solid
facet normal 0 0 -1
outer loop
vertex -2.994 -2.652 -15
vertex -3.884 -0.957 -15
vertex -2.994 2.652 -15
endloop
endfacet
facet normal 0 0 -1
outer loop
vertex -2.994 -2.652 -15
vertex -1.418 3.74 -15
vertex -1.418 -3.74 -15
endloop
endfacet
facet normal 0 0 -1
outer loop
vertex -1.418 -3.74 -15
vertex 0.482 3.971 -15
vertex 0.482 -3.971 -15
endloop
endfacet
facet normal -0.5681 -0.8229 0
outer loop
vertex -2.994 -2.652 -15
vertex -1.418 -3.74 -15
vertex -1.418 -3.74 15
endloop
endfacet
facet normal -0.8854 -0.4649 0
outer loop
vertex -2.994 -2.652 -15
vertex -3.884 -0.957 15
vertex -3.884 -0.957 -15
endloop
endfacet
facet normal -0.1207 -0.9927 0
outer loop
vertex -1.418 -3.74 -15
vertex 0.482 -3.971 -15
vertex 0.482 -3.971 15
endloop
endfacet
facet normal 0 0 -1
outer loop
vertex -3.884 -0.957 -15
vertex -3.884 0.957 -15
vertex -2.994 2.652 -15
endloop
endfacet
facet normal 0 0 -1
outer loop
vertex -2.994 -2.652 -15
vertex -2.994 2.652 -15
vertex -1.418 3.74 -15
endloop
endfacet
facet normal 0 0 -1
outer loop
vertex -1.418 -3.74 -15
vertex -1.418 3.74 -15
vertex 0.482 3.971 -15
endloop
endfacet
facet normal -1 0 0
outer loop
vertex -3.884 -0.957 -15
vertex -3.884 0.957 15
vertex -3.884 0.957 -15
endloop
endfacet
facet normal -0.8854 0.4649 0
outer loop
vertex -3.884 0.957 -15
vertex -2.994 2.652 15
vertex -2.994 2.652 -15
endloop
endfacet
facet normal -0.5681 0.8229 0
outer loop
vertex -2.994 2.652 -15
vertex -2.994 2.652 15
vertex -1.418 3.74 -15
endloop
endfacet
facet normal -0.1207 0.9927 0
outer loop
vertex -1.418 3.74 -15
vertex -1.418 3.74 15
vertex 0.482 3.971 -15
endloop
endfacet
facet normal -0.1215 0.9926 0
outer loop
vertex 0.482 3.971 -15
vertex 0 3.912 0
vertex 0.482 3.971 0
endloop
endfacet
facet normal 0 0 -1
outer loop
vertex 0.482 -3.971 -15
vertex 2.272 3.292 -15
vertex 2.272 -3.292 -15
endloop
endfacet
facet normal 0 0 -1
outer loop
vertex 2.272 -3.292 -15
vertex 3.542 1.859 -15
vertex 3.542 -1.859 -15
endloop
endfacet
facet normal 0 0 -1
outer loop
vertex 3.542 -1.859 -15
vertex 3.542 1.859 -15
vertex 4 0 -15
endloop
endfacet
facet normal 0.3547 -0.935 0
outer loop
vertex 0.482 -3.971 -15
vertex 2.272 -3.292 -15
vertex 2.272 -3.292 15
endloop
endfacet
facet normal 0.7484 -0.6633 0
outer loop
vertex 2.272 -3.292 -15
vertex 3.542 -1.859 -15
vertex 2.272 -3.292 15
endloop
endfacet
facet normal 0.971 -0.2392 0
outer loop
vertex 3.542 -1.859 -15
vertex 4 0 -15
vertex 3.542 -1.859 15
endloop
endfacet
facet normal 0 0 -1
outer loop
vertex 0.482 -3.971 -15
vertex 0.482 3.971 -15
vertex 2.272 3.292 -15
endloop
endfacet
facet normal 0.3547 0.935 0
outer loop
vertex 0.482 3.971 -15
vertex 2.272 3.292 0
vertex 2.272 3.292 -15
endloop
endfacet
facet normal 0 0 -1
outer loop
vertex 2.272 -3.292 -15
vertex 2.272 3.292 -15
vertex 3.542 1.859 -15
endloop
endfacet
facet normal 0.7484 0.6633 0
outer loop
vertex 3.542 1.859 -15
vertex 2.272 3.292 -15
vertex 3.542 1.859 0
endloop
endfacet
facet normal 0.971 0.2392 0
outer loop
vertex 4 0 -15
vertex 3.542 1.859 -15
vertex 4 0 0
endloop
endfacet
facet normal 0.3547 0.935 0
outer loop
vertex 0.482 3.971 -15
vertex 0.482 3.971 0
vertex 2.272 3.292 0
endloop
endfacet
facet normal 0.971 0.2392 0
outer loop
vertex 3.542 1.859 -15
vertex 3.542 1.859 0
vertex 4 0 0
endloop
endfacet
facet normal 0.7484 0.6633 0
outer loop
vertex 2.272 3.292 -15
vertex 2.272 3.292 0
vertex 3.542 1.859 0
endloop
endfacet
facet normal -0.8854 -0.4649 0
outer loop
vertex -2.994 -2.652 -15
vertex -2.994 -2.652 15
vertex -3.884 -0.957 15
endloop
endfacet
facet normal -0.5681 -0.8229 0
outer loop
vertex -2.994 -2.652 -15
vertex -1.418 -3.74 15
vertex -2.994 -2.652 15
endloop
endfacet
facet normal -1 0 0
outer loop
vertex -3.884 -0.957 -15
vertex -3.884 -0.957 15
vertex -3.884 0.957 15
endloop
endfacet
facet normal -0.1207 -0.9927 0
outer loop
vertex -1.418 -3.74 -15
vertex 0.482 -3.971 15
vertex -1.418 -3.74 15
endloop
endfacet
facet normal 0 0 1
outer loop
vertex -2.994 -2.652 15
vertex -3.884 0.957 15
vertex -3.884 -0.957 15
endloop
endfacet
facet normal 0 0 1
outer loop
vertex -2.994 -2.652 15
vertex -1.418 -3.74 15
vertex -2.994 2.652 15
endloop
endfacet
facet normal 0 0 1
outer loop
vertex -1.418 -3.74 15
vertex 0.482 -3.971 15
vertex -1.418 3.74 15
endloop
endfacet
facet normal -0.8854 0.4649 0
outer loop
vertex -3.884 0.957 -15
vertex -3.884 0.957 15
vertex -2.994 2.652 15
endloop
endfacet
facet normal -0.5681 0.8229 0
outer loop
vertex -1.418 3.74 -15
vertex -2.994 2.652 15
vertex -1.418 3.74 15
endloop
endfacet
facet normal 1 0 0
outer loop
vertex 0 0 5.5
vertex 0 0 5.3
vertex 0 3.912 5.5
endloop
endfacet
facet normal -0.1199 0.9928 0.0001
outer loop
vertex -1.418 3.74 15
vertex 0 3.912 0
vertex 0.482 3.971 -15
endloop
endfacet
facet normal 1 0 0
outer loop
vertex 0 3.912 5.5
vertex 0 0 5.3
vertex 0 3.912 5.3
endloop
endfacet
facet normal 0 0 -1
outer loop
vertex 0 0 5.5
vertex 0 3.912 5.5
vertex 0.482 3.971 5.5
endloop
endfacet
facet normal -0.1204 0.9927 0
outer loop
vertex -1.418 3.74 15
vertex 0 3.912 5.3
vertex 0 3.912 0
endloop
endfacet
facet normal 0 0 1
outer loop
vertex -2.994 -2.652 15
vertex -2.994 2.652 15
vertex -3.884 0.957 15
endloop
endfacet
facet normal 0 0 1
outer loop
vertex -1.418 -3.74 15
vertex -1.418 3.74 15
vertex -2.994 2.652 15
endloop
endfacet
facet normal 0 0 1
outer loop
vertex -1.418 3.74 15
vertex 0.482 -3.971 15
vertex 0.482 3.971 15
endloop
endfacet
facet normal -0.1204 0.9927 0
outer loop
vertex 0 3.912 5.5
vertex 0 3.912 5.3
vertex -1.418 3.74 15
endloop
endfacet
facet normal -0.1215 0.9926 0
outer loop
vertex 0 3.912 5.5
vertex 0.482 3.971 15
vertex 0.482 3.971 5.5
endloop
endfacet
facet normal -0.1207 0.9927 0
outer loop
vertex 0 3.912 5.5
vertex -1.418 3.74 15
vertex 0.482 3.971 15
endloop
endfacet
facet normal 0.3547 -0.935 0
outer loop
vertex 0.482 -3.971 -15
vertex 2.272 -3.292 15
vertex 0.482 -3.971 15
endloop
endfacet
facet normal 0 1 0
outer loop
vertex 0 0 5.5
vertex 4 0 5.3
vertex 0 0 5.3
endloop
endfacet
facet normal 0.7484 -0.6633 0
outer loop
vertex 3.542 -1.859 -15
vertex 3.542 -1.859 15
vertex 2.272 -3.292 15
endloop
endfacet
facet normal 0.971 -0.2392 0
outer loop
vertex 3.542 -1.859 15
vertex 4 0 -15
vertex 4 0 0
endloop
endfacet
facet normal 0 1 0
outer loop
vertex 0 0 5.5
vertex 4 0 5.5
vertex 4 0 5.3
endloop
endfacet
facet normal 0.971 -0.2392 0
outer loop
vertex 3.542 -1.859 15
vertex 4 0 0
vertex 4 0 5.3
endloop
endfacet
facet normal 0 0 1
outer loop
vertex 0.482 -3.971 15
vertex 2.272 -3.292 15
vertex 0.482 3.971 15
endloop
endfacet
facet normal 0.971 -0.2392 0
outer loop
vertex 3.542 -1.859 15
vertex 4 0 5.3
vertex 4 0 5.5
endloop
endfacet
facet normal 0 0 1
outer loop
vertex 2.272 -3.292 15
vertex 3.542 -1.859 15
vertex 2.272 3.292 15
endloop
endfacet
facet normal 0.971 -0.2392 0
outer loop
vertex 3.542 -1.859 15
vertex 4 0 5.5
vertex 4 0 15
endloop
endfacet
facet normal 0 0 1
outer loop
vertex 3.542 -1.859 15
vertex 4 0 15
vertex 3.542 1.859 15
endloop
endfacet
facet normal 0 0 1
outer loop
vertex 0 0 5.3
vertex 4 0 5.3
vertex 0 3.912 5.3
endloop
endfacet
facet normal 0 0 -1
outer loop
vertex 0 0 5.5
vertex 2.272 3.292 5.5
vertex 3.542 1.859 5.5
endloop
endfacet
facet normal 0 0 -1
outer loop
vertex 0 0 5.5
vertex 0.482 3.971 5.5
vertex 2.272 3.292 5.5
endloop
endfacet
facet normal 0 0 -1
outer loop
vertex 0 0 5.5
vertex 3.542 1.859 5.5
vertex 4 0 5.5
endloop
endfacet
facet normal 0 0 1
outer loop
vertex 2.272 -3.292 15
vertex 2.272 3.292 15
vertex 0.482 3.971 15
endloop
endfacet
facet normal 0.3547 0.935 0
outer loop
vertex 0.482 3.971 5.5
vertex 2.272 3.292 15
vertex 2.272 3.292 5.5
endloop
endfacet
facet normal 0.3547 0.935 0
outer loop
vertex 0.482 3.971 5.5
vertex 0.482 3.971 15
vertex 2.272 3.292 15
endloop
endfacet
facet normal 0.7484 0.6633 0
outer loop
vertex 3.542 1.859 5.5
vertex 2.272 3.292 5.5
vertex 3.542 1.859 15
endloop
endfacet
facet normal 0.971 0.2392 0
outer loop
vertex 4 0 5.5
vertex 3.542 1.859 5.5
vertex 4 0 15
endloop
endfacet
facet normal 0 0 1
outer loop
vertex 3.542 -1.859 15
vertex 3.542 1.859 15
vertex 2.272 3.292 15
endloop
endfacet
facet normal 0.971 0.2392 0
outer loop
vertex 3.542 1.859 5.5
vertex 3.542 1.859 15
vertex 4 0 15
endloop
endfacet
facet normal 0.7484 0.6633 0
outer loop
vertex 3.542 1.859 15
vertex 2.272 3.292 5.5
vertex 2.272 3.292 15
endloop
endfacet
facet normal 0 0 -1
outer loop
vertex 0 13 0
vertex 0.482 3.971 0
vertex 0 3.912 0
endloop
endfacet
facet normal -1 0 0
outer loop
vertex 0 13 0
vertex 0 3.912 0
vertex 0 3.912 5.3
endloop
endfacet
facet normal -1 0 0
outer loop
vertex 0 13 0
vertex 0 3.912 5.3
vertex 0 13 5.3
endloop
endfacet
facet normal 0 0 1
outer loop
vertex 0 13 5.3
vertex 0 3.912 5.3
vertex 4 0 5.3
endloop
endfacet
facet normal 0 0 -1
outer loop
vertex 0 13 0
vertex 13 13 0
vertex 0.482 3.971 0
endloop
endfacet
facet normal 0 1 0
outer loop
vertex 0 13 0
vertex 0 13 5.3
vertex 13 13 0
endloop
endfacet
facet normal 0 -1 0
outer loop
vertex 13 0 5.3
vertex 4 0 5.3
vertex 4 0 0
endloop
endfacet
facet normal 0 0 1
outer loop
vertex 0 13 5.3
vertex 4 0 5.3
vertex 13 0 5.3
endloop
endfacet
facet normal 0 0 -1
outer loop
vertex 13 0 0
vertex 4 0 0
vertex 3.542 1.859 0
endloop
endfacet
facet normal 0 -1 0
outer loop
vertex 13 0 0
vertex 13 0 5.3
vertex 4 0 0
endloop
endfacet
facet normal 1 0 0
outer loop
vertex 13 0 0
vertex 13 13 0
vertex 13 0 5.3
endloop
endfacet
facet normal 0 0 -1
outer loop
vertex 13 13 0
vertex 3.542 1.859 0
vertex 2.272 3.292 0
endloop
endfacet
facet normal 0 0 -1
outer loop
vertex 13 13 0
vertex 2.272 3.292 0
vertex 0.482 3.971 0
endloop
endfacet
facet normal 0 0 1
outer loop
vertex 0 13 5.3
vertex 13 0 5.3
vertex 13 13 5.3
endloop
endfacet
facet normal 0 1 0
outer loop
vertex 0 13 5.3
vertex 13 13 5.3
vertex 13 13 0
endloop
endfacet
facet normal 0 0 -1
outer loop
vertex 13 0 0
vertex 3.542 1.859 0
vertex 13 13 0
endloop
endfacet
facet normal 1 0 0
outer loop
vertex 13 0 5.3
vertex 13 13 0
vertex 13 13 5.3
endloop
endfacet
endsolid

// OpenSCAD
// M8 Hex Bolt (Simplified Shank)
// Head dimensions: Across-flats = 13mm, Height = 5.3mm
// Shank dimensions: Diameter = 8mm, Length = 30mm
// Configuration: Head base at Z=0, Shank extends into Z < 0

// --- Parameters ---
head_across_flats = 13;   // 六角部の対辺距離 (Across flats)
head_height = 5.3;        // 頭部の高さ (Height)
shank_diameter = 8;       // シャンクの直径 (Diameter)
shank_length = 30;        // シャンクの長さ (Length)

// --- Head Definition (Hexagonal Prism) ---
head_z_start = 0;         // 頭部の底面がZ=0に来るように設定
head_z_end = head_height;

module hex_head() {
    difference() {
        // 六角柱の本体
        cube([head_across_flats, head_across_flats, head_height]);

        // 頭部を六角形にするための穴あけ (Center alignment)
        // 穴の中心座標: X=across_flats/2, Y=across_flats/2, Z=head_height
        translate([0, 0, head_height]) {
            rotate([90, 0, 0]) { // 六角形がZ軸に沿うように向きを調整
                // 外側の六角形を定義する穴 (少し深めに切り取る)
                cube([head_across_flats + 0.2, head_across_flats + 0.2, head_height + 0.1]);
            }
        }
    }
}

// --- Shank Definition (Cylinder) ---
module cylindrical_shank() {
    shank_z_start = head_z_end; // シャンクの開始Z位置 (頭部の頂上)
    shank_z_end = shank_z_start - shank_length; // シャンクの終了Z位置

    difference() {
        // 円柱本体
        cylinder(h = shank_length, r = shank_diameter / 2, center = true);

        // 頭部との接続部分を切り取るための穴 (頭部の底面がZ=0にあるため、Z軸方向の切り取り)
        // シャンクが始まる位置 Z=shank_z_start から、頭部の高さ分だけ切り取る。
        translate([0, 0, shank_z_start - head_z_end]) {
             cube([shank_diameter + 1, shank_diameter + 1, head_height + 0.2]);
        }
    }
}

// --- Final Assembly ---
// ボルト全体を定義 (中心軸は+Z方向)
union() {
    color("steelCC") {
        hex_head();
        cylindrical_shank();
    }
}
